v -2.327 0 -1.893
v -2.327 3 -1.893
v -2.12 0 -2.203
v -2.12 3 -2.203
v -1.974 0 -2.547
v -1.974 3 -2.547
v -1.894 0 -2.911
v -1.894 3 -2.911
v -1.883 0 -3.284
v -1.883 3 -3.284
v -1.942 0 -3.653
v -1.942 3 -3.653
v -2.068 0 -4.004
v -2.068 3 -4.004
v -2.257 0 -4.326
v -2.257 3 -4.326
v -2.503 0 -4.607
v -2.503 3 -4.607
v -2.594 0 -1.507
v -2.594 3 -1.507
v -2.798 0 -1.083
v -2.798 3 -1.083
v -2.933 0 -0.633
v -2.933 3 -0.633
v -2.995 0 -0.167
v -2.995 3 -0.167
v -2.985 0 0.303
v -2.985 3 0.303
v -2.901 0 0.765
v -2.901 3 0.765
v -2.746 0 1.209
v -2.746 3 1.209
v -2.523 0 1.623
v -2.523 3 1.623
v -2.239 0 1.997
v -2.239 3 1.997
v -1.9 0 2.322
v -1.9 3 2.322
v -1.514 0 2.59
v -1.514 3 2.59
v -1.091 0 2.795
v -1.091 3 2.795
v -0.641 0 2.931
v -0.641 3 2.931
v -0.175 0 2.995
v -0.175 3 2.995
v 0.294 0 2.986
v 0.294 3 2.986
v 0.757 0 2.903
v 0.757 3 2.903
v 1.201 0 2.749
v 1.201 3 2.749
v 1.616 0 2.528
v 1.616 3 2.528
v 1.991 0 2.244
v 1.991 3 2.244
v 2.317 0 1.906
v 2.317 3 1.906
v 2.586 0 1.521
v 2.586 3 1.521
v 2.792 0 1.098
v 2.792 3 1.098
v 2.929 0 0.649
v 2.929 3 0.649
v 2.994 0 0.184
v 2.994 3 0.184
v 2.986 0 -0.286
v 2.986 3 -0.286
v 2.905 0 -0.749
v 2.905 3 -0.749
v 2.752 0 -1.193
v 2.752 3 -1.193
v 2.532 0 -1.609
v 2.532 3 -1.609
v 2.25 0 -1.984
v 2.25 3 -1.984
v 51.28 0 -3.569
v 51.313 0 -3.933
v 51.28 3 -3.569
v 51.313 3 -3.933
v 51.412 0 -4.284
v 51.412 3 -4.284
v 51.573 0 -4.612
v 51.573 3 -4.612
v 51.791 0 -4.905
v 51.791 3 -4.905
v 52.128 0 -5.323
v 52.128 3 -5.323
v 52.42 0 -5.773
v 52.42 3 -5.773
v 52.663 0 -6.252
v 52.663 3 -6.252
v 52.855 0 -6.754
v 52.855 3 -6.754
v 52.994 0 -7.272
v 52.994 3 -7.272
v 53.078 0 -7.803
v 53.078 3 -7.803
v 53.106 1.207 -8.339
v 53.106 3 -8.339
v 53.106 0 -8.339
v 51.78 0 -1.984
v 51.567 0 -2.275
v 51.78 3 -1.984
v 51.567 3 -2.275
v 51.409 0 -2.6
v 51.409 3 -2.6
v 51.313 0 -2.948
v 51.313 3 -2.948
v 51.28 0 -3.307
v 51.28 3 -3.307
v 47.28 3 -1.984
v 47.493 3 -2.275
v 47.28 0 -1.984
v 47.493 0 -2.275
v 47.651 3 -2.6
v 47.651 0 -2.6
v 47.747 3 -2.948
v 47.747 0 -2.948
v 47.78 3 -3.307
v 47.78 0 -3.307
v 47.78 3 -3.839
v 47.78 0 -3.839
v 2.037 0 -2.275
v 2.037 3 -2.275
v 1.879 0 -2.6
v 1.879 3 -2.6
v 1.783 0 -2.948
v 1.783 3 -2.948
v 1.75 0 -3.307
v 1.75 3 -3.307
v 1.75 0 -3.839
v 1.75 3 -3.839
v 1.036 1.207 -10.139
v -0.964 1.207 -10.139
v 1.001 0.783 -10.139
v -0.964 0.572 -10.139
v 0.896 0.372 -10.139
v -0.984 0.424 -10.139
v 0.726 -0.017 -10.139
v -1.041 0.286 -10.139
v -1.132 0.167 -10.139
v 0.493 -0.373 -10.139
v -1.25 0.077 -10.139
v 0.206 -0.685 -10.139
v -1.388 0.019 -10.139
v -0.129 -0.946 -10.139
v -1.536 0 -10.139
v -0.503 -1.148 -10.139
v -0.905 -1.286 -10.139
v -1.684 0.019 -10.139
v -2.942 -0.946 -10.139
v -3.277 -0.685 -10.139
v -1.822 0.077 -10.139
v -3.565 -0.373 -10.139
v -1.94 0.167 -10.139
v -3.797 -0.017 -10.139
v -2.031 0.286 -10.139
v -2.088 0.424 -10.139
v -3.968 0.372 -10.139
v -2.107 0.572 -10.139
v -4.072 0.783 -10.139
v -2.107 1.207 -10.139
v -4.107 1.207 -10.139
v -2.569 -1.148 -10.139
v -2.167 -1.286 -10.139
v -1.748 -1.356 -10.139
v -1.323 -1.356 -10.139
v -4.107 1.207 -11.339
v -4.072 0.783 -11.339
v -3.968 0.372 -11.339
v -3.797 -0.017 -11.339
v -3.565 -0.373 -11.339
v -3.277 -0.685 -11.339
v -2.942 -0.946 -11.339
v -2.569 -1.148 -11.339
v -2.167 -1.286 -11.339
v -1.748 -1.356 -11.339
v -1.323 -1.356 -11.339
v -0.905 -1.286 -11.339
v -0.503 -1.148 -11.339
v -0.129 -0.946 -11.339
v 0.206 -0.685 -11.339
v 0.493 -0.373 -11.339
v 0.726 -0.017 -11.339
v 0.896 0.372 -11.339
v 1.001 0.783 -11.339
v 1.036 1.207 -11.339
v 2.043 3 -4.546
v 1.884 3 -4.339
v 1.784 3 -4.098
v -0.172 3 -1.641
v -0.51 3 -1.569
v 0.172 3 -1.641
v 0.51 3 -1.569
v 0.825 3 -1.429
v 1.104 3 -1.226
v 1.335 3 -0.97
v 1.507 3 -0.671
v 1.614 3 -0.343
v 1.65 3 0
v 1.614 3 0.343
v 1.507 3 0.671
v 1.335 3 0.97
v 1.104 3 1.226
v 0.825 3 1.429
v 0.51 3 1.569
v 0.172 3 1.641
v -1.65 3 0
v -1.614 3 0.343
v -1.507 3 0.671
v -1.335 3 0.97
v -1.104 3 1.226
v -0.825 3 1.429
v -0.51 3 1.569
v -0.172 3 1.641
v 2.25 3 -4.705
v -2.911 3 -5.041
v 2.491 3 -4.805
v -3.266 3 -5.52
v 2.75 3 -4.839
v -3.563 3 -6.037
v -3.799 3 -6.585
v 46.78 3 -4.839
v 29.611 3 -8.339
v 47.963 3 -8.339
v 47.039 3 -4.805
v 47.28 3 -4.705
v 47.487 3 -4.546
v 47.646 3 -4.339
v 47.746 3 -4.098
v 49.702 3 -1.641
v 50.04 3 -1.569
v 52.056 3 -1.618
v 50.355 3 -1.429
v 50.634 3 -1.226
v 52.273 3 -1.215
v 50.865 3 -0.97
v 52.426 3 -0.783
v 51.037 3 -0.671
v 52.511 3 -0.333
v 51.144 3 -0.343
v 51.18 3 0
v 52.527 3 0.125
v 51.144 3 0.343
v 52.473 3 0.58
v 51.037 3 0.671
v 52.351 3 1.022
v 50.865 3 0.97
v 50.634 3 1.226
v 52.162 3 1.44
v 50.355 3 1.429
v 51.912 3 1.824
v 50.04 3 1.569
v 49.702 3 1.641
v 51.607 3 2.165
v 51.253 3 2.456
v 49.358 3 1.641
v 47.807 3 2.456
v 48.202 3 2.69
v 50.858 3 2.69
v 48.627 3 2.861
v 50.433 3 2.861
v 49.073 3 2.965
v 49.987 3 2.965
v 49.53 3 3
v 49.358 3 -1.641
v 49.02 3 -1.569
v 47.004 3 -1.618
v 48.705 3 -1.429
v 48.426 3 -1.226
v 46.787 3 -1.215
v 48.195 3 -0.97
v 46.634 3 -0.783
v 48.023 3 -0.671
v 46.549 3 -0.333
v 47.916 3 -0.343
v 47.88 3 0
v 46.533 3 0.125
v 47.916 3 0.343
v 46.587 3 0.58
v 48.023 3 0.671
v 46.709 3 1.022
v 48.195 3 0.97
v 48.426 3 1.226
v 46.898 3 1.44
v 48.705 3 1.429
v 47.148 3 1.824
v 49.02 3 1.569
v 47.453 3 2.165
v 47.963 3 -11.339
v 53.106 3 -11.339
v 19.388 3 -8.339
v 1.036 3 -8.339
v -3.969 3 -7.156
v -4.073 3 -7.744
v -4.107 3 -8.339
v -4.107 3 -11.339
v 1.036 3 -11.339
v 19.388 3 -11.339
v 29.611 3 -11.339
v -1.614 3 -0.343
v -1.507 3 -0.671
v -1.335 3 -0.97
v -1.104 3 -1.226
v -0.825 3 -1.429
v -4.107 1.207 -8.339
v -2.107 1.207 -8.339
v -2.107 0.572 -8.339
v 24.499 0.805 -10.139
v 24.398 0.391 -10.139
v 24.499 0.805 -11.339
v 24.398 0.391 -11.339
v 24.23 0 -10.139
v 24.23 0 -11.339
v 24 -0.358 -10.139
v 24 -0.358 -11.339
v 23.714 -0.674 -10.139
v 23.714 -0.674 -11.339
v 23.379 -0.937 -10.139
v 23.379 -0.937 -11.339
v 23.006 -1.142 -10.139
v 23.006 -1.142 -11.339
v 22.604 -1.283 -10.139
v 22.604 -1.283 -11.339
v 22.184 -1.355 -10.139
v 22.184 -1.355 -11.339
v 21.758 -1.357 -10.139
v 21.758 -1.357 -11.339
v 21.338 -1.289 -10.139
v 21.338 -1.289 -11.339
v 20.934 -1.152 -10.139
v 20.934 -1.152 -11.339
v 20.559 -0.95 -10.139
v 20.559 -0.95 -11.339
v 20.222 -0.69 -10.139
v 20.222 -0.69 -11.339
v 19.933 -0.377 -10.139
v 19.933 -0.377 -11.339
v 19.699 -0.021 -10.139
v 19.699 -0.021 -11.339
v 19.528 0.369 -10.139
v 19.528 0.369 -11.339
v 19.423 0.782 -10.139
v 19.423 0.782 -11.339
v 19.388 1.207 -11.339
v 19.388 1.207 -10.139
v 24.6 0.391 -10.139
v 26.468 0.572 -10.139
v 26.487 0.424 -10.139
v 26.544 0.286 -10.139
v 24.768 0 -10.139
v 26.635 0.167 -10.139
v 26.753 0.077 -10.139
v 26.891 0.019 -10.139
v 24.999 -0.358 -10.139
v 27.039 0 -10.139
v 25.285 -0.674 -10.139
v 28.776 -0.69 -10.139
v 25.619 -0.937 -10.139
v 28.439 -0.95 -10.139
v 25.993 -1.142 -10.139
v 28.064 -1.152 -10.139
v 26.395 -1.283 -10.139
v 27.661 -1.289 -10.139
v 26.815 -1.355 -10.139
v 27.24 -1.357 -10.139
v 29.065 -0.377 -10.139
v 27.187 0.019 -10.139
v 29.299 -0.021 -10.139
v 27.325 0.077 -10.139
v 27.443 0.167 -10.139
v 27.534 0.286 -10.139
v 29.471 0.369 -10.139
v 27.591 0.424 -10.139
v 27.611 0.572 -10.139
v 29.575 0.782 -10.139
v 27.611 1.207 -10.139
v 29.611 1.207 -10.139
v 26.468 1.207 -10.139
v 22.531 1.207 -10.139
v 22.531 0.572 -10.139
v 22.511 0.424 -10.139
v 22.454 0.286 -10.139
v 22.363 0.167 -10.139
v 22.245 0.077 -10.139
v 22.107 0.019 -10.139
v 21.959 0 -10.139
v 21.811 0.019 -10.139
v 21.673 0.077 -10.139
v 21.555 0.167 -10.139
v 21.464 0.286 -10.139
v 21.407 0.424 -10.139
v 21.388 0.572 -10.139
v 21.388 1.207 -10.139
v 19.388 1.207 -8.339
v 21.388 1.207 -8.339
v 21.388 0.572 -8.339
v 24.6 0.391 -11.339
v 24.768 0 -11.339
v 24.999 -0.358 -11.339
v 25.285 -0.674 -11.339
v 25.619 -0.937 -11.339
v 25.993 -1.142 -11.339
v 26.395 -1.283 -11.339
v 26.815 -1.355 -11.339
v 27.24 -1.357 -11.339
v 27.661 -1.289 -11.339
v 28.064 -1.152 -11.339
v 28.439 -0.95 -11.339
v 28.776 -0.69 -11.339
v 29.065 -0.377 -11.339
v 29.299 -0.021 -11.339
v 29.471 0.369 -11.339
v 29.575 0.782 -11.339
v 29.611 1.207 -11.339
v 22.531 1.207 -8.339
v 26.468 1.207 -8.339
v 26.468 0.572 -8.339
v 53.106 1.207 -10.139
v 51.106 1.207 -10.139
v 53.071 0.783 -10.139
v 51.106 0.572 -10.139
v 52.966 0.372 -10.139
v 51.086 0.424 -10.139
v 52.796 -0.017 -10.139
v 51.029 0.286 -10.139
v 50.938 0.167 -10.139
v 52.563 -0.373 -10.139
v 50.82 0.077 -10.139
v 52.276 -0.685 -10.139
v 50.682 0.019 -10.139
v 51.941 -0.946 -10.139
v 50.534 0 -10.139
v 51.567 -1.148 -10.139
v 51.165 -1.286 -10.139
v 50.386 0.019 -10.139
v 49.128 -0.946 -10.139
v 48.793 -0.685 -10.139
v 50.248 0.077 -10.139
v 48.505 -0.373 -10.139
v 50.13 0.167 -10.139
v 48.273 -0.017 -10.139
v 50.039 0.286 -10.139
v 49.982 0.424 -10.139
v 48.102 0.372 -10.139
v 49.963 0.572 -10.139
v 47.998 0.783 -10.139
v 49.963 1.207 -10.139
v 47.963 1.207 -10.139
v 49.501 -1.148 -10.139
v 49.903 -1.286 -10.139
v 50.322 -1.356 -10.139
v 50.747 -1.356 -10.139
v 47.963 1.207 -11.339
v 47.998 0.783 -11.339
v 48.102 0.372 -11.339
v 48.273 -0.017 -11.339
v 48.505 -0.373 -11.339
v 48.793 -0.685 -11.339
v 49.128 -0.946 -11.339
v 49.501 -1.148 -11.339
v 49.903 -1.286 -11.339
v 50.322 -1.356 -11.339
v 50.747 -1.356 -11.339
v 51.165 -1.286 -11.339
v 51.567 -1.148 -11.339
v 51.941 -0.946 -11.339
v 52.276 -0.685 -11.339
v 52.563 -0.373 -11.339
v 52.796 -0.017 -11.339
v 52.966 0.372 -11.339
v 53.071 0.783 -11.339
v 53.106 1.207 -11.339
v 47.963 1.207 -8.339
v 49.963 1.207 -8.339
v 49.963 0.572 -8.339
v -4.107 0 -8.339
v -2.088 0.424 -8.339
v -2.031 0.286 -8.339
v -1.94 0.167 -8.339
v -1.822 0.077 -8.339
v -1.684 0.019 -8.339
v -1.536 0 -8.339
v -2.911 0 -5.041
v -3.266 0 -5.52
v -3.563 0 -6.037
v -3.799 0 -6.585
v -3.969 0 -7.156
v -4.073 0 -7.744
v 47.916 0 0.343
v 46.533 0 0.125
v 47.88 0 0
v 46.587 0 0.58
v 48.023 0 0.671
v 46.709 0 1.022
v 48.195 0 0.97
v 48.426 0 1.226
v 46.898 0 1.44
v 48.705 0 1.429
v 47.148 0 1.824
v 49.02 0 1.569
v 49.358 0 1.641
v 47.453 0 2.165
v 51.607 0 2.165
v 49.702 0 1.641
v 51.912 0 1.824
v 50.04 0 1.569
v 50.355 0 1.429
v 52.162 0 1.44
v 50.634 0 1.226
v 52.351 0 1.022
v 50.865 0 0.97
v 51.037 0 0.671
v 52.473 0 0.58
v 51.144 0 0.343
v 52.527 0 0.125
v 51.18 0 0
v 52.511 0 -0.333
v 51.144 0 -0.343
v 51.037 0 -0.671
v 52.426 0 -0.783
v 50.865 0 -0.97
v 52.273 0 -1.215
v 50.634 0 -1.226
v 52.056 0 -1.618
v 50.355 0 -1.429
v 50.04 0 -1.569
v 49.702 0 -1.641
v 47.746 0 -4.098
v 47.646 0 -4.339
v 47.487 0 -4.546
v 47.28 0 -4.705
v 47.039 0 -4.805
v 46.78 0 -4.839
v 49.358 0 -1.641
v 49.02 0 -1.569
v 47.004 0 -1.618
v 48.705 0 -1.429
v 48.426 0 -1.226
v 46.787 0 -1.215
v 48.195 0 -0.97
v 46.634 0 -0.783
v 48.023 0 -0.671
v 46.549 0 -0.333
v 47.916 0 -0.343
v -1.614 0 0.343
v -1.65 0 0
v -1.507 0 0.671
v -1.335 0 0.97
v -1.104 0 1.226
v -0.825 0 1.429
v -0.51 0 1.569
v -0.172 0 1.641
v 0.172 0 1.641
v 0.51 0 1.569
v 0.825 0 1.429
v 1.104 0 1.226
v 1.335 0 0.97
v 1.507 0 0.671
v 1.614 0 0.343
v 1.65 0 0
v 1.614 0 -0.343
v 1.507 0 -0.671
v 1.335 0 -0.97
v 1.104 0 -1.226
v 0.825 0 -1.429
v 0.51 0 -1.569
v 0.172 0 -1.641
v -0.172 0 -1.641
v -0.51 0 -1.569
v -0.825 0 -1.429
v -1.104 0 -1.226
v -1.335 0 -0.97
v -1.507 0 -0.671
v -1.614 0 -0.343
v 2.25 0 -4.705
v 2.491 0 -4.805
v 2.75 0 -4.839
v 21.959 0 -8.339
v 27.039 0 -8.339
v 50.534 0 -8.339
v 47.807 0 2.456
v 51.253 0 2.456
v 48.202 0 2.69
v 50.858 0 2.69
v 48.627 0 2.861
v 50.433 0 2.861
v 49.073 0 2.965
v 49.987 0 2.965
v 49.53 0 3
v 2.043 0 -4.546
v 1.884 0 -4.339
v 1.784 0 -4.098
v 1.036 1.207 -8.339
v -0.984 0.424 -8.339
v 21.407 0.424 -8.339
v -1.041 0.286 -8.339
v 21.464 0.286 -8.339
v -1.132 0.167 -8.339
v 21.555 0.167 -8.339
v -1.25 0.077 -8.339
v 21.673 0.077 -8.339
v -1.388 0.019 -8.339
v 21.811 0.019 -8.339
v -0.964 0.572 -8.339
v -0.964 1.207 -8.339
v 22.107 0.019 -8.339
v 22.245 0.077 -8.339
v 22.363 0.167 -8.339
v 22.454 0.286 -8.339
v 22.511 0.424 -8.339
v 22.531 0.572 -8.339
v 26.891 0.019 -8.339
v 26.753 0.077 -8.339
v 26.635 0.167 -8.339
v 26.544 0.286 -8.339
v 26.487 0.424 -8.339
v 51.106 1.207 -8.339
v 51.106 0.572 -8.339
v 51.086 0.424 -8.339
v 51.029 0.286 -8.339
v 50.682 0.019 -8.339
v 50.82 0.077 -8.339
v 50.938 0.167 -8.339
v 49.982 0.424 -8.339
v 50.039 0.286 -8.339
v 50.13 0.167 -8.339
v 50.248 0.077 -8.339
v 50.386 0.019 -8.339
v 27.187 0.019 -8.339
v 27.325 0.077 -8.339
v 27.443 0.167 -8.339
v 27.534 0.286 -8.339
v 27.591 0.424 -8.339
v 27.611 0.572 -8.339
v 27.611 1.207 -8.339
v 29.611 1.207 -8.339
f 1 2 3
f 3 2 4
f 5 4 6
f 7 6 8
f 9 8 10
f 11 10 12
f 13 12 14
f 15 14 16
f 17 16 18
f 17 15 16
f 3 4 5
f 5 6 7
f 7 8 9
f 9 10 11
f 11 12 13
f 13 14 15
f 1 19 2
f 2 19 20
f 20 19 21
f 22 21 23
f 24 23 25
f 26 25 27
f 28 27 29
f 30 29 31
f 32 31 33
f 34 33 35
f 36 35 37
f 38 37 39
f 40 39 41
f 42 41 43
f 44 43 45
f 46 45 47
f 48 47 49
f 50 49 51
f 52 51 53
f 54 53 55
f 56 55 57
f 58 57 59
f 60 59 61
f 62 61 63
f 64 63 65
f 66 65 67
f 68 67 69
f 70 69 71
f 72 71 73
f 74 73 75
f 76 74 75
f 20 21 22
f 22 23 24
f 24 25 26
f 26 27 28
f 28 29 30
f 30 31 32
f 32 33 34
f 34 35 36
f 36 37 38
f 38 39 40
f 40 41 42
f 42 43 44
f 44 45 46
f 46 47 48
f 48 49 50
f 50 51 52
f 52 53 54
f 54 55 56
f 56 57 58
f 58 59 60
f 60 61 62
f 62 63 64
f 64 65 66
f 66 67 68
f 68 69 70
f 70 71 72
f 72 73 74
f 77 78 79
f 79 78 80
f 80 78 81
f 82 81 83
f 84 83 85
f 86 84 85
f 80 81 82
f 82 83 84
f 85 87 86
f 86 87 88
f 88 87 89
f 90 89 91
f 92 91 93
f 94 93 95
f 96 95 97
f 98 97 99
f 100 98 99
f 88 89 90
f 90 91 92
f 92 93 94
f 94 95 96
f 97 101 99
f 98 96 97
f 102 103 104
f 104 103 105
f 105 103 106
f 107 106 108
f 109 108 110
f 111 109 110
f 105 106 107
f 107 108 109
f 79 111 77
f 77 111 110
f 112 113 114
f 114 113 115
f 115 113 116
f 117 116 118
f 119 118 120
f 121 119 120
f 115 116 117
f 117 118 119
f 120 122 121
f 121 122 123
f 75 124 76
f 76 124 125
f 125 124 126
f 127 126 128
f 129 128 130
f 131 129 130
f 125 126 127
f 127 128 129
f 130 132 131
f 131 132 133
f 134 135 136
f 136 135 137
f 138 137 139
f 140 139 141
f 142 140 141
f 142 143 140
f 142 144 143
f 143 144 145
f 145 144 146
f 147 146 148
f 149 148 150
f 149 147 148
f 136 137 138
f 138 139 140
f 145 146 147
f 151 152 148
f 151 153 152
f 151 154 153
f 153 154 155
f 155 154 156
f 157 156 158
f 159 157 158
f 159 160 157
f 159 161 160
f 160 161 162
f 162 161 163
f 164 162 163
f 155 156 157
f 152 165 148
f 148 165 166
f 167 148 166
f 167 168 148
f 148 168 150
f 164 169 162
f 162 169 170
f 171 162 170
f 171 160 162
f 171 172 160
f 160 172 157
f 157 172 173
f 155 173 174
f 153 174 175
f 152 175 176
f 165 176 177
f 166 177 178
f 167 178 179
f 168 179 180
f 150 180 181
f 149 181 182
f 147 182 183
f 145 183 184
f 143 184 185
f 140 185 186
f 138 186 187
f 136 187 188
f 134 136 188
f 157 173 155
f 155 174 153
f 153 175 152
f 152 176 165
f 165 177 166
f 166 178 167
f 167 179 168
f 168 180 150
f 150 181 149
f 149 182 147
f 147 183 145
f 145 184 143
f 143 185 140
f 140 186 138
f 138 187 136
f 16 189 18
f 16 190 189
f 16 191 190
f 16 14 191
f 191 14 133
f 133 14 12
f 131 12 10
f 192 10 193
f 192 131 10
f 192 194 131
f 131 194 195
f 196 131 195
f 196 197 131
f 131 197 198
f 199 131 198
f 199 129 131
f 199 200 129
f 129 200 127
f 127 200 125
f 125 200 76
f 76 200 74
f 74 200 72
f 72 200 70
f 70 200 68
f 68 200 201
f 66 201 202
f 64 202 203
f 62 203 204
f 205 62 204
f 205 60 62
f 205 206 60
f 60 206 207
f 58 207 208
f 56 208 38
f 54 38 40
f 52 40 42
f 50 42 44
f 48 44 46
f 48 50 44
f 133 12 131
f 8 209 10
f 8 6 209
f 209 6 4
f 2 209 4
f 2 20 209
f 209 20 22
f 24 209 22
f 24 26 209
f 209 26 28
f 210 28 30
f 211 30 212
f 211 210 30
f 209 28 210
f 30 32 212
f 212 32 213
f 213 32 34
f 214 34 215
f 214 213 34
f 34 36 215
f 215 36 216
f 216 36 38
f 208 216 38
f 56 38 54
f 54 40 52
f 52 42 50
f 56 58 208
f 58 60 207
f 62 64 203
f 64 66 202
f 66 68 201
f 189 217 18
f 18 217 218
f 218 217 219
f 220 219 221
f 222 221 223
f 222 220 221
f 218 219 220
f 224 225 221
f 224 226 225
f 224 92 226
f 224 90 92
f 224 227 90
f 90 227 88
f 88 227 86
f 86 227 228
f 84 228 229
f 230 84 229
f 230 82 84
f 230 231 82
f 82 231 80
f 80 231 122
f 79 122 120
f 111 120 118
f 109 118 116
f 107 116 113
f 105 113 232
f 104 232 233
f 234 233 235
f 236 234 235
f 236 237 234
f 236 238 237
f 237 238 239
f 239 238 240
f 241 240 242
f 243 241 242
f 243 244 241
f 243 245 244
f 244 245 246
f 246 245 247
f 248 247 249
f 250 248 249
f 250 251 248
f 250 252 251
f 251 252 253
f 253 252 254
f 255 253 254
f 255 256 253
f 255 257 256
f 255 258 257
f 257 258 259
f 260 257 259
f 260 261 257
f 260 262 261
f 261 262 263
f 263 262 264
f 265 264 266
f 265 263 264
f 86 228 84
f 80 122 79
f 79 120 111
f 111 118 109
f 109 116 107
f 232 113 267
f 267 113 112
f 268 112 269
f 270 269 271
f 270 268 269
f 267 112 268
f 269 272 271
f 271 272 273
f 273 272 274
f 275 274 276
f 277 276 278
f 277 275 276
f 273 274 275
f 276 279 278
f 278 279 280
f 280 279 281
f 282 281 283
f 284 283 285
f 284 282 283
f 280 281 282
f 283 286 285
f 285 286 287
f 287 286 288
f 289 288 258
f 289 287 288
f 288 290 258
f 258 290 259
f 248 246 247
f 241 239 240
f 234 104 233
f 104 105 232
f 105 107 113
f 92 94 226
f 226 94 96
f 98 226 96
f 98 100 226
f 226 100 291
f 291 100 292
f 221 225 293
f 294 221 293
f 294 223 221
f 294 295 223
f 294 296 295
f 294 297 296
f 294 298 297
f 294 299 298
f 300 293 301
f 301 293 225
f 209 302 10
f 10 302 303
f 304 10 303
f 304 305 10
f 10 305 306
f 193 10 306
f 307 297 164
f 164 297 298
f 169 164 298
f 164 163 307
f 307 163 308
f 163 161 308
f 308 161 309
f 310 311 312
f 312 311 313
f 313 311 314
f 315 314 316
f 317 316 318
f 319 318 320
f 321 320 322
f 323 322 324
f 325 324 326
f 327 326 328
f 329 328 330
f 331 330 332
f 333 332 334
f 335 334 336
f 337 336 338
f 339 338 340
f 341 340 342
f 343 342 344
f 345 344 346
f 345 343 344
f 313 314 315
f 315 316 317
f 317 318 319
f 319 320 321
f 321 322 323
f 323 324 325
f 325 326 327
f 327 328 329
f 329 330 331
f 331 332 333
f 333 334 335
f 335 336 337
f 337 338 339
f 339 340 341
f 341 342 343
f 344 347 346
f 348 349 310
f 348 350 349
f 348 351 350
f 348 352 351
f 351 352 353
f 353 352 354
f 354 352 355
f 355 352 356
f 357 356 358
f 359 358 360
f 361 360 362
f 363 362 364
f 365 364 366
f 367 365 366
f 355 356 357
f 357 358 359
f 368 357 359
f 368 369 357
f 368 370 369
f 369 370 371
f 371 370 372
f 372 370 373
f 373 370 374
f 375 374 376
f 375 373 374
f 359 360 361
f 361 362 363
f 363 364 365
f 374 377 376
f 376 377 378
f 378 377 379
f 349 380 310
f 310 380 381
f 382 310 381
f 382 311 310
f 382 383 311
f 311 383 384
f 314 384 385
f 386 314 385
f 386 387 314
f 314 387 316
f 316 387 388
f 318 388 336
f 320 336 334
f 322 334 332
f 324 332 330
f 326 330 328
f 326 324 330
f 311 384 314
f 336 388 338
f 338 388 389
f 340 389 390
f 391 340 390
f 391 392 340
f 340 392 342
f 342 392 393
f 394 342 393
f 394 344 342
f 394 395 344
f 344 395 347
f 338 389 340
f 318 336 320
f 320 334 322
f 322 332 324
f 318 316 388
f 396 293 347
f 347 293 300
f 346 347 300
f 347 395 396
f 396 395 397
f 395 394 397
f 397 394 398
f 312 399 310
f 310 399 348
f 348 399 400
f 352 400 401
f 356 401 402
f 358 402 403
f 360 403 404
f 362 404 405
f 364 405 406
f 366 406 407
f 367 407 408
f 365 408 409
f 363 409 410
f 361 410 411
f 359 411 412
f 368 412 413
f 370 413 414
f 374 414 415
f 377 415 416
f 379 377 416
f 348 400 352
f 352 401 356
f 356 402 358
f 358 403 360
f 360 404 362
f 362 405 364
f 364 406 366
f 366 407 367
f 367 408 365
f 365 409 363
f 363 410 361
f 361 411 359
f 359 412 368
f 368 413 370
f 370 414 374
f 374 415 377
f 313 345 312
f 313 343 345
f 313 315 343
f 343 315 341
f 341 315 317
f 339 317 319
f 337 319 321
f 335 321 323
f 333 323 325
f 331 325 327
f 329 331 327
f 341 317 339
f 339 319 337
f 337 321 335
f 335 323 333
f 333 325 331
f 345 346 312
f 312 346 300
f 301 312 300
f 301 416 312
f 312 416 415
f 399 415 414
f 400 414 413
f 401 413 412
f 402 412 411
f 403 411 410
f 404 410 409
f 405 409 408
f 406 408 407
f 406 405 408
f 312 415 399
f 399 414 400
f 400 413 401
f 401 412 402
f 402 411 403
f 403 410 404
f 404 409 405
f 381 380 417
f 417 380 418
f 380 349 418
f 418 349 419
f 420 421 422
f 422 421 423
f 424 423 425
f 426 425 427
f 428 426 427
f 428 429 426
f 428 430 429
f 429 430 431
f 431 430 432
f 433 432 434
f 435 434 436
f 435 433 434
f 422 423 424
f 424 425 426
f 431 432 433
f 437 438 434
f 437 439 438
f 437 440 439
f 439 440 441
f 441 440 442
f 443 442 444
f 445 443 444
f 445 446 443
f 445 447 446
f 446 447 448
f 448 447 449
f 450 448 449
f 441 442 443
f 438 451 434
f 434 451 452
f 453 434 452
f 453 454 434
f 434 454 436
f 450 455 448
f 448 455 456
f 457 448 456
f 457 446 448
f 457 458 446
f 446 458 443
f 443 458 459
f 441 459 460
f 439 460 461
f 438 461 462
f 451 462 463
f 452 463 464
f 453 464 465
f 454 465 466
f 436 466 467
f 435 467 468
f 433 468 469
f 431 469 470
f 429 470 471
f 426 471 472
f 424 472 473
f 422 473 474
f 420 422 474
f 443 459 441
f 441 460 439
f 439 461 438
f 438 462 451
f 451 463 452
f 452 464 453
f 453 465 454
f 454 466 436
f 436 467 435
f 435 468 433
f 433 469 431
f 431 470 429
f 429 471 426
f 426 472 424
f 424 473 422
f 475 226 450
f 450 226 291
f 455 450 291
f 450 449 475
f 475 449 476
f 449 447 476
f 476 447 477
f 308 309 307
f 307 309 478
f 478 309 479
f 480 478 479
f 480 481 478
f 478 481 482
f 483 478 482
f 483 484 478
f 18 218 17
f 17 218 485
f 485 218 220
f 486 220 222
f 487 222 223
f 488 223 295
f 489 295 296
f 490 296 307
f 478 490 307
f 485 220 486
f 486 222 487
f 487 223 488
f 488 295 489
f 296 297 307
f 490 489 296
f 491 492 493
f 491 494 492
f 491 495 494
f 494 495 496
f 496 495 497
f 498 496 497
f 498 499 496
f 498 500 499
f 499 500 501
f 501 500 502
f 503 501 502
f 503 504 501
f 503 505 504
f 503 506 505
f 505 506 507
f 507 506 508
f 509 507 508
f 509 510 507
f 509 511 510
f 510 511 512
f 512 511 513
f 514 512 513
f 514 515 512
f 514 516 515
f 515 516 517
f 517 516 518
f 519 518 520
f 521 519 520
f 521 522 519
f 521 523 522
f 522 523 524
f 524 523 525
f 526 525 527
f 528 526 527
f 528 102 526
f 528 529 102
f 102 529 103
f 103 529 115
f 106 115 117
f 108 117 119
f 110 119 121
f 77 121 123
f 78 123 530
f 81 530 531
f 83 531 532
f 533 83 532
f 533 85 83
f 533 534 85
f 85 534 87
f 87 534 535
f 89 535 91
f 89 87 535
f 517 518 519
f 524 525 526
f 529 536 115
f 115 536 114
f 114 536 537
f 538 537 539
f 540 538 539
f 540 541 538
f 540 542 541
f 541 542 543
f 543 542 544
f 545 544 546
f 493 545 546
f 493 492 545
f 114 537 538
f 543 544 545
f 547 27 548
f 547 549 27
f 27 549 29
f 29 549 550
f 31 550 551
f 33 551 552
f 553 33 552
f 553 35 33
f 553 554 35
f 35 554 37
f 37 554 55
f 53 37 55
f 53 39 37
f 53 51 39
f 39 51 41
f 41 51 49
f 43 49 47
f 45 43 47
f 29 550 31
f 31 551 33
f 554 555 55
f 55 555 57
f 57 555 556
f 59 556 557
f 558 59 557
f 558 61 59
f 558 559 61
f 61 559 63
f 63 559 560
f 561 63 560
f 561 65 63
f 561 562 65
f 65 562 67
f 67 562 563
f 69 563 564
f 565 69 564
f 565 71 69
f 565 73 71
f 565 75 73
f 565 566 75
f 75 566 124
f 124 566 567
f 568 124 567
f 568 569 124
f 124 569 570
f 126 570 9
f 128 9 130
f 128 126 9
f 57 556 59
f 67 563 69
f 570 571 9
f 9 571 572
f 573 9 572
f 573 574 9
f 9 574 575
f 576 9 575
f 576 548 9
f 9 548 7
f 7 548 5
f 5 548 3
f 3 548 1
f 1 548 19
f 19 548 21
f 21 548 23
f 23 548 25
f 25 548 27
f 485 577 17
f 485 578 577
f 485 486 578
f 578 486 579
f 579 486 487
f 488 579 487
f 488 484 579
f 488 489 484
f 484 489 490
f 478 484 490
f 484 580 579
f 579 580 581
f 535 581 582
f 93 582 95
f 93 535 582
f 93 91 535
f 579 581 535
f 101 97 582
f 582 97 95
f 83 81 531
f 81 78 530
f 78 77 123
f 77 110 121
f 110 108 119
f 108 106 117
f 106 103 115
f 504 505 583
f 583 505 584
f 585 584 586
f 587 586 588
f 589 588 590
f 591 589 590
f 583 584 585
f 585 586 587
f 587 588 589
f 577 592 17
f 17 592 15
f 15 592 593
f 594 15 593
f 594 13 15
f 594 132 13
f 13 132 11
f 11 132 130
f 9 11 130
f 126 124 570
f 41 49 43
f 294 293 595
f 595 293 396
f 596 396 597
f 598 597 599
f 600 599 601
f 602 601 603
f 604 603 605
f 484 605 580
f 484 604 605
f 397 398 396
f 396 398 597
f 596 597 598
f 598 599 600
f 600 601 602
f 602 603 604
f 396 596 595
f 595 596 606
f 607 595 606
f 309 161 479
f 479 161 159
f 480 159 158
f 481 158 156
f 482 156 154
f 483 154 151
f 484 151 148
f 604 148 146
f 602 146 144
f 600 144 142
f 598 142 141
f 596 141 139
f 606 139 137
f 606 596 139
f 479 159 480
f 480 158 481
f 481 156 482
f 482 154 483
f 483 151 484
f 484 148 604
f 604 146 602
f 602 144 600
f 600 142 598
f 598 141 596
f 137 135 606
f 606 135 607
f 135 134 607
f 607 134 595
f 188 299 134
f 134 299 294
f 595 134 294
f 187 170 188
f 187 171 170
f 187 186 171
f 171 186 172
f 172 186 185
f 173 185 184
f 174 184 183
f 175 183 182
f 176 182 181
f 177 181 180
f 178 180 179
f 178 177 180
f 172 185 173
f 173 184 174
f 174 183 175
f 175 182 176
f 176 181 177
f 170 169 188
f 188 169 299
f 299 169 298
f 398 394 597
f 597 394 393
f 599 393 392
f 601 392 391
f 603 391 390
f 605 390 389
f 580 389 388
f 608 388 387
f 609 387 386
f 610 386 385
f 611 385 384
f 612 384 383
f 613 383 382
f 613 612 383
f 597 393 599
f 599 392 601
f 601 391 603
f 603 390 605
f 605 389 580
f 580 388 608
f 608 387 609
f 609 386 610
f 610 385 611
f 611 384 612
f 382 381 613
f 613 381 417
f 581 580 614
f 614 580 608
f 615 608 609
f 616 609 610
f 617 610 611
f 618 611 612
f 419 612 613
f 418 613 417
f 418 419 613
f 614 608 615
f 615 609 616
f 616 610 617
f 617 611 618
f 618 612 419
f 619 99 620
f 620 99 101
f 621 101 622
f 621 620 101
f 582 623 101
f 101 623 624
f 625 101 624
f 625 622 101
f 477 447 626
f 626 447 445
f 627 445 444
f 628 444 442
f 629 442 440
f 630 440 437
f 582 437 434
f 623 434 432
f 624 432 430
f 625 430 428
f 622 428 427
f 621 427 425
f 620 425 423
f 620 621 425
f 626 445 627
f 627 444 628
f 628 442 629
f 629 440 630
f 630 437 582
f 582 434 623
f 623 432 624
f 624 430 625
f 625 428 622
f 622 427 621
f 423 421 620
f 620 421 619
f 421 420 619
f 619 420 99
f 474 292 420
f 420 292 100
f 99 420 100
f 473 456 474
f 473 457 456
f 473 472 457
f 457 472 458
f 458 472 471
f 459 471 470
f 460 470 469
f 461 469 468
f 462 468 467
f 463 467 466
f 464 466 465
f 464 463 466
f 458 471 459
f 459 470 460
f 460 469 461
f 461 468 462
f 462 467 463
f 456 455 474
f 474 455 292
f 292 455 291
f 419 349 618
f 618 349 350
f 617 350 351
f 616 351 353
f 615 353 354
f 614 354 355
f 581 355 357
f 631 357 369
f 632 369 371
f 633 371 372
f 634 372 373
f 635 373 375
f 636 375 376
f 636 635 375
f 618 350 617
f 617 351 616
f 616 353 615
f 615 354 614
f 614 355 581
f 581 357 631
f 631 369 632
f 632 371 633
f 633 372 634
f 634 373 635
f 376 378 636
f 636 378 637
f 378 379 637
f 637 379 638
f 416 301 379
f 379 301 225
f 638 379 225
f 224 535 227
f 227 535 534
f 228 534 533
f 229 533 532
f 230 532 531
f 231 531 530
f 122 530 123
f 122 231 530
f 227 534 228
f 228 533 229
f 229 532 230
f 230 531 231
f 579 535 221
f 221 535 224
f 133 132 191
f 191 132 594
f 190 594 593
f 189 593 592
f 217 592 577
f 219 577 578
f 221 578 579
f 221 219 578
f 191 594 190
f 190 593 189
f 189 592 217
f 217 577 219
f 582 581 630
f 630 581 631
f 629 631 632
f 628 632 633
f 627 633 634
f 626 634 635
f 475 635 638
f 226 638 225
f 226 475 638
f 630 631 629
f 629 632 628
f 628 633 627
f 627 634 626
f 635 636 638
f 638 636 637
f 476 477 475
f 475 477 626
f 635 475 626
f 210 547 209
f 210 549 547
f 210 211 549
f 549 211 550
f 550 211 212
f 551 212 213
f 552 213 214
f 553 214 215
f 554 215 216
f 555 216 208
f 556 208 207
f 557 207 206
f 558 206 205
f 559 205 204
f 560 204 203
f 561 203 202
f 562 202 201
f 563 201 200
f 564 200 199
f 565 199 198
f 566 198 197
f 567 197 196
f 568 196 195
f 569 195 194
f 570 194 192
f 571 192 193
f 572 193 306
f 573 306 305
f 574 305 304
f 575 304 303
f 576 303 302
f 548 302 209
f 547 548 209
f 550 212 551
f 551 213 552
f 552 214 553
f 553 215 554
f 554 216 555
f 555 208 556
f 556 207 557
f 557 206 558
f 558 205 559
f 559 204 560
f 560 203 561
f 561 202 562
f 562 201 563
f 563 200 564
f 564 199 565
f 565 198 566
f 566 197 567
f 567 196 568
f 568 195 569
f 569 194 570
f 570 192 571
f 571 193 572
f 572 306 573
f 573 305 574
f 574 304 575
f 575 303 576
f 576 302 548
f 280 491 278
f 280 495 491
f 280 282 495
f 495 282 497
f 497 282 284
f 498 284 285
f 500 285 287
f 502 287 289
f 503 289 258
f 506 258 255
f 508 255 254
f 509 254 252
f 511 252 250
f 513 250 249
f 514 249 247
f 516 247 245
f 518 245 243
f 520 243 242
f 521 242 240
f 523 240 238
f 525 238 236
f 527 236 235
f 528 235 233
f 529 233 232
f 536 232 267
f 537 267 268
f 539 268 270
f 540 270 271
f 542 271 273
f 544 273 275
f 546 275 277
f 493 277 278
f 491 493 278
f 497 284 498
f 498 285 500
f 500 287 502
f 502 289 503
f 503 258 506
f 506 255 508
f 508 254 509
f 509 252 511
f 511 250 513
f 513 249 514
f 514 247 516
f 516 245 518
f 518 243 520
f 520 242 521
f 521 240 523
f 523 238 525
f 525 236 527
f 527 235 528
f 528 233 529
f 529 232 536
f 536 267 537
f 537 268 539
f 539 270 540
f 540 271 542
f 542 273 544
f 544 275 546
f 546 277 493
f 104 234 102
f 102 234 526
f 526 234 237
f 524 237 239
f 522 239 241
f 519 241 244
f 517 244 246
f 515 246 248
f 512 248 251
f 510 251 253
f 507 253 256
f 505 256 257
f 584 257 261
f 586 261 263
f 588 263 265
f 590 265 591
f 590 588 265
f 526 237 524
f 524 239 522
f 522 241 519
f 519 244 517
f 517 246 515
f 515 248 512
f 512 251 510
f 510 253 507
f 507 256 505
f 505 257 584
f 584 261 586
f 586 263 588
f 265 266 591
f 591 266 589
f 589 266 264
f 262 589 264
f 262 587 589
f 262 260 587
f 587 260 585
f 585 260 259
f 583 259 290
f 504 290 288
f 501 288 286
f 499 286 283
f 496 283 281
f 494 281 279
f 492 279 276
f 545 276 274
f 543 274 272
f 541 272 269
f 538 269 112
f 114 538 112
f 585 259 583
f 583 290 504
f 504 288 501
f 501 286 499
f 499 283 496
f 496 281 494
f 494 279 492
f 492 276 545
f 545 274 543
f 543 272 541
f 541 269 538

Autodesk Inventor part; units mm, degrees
ref_plane "YZ Plane" through (0, 0, 0) normal (1, 0, 0) x (0, 1, 0)
ref_plane "XZ Plane" through (0, 0, 0) normal (0, 1, 0) x (-1, 0, 0)
ref_plane "XY Plane" through (0, 0, 0) normal (0, 0, 1) x (1, 0, 0)
sketch "Sketch1" plane through (0, 0, 0) normal (0, 1, 0) x (-1, 0, 0)
  circle A0 centre (0, 0) radius 1.65
  line L0 (0, 0) -> (22.8671, 0) construction
  circle A1 centre (-49.53, 0) radius 1.65
  circle A2 centre (-49.53, 0) radius 3
  line L1 (-24.765, 0) -> (-24.765, 33.4897) construction
  line L2 (0, 0) -> (0, -6.322) construction
  line L3 (-49.53, 0) -> (-44.53, 0) construction
  circle A3 centre (0, 0) radius 3
  dimension "d0" = 3.3
  dimension "d2" = 49.53
  dimension "d3" = 3.3
  dimension "d4" = 6
  dimension "d11" = 6
extrude "Extrusion1" add sketch "Sketch1" along normal blind 3
sketch "Sketch2" plane through (49.53, 0, 0) normal (0, -1, 0) x (1, 0, 0)
  line L0 (1.75, -2.2) -> (1.75, -6.339)
  line L1 (-0.25, -8.339) -> (-49.28, -8.339)
  line L2 (-51.28, -6.339) -> (-51.28, -2.2)
  line L3 (-47.78, -2.2) -> (-47.78, -3.839)
  line L4 (-46.78, -4.839) -> (-2.75, -4.839)
  line L5 (-1.75, -3.839) -> (-1.75, -2.2)
  line L6 (0, 0) -> (0, -7.7115) construction
  line L7 (1.75, -2.2) -> (-1.75, -2.2)
  line L8 (-49.53, 0) -> (-49.53, -7.2415) construction
  line L9 (-47.78, -2.2) -> (-51.28, -2.2)
  arc A0 (-47.78, -3.839) -> (-46.78, -4.839) centre (-46.78, -3.839) ccw
  arc A1 (-2.75, -4.839) -> (-1.75, -3.839) centre (-2.75, -3.839) ccw
  arc A2 (-51.28, -6.339) -> (-49.28, -8.339) centre (-49.28, -6.339) ccw
  arc A3 (-0.25, -8.339) -> (1.75, -6.339) centre (-0.25, -6.339) ccw
  point P0 (1.75, -8.339)
  point P1 (0, -2.2)
  point P2 (-49.53, -2.2)
  dimension "d14" = 6.139
  dimension "d15" = 2.2
  dimension "d16" = 3.5
  dimension "d17" = 3.5
  dimension "d18" = 2.2
  dimension "d19" = 1
  dimension "d20" = 2
extrude "Extrusion2" add sketch "Sketch2" against normal blind 3
sketch "Sketch3" plane through (49.28, 0, -8.339) normal (0, 0, -1) x (-1, 0, 0)
  arc A0 (21.6693, 0.5715) -> (22.8123, 0.5715) centre (22.2408, 0.5715) ccw
  line L0 (49.03, 0) -> (0, 0) construction
  line L1 (0, 3) -> (49.03, 3) projected
  line L2 (-2, 0) -> (-2, 3) projected
  line L3 (22.8123, 0.5715) -> (22.8123, 1.2065)
  line L4 (22.8123, 1.2065) -> (24.8123, 1.2065)
  line L5 (24.8123, 1.2065) -> (24.8123, 3)
  line L6 (21.6693, 0.5715) -> (21.6693, 1.2065)
  line L7 (21.6693, 1.2065) -> (19.6693, 1.2065)
  line L8 (19.6693, 1.2065) -> (19.6693, 3)
  line L9 (22.2408, 0.5715) -> (23.4157, 0.5715) construction
  line L10 (24.8123, 3) -> (19.6693, 3)
  point P0 (49.28, 0)
  point P1 (46.53, 3)
  point P2 (2.5, 3)
  dimension "d23" = 1.143
  dimension "d26" = 24.2408
  dimension "d27" = 2
  dimension "d28" = 2
  dimension "d29" = 0.635
  dimension "d30" = 0.635
  dimension "d31" = 2.4285
extrude "Extrusion3" add sketch "Sketch3" along normal blind 3
pattern_linear "Rectangular Pattern1" count 2 spacing 23.495 along (1, 0, 0) of "Extrusion3"
sketch "Sketch4" plane through (47.9627, 3, -8.339) normal (0, 1, 0) x (1, 0, 0)
  arc A0 (0, -5.143) -> (5.143, 0) centre (0, 0) ccw
  line L0 (5.143, 0) -> (0, 0)
  line L1 (0, 0) -> (0, -5.143)
  point P0 (-47.9627, -8.339)
extrude "Extrusion4" add sketch "Sketch4" against normal blind 3
pattern_linear "Rectangular Pattern2" count 2 spacing 5.08 along (-1, 0, 0) of "Extrusion3"
pattern_linear "Rectangular Pattern3" count 2 spacing 23.495 along (-1, 0, 0) of "Rectangular Pattern2"
sketch "Sketch6" plane through (0, 0, 0) normal (0, -1, 0) x (1, 0, 0)
  line L0 (1.0357, -8.339) -> (-4.1073, -8.339)
  line L1 (-4.1073, -8.339) -> (-1.6483, -8.339)
  line L2 (-0.2103, -8.339) -> (0.25, -8.339)
  line L3 (0.25, -8.339) -> (1.0357, -8.339)
  line L4 (1.0357, -8.339) -> (1.0357, -3.196)
  arc A0 (1.0357, -3.196) -> (-4.1073, -8.339) centre (1.0357, -8.339) ccw
  line L5 (-0.9643, -8.339) -> (0.25, -8.339) projected
  line L6 (-0.9643, -8.339) -> (-0.9643, -11.339) projected
  line L7 (1.0357, -11.339) -> (-0.9643, -11.339) projected
  line L8 (1.0357, -8.339) -> (1.0357, -11.339) projected
  line L9 (0.25, -8.339) -> (1.0357, -8.339) projected
  line L10 (-4.1073, -8.339) -> (-2.1073, -8.339) projected
  line L11 (-4.1073, -8.339) -> (-4.1073, -11.339) projected
  line L12 (-2.1073, -11.339) -> (-4.1073, -11.339) projected
  line L13 (-2.1073, -8.339) -> (-2.1073, -11.339) projected
  line L14 (0.25, -8.339) -> (21.9592, -8.339) projected
  point P0 (5.143, 0)
extrude "Extrusion5" add sketch "Sketch6" against normal blind 3 contours L0 A0 L4
sketch "Sketch7" plane through (53.1057, 3, -11.339) normal (0, 0, -1) x (-1, 0, 0)
  line L0 (3.143, -2.4285) -> (3.143, -1.7935) construction
  line L1 (3.143, -1.7935) -> (5.143, -1.7935) construction
  line L2 (5.143, -1.7935) -> (5.143, 0) construction
  line L3 (5.143, 0) -> (0, 0) construction
  line L4 (0, 0) -> (0, -1.7935) construction
  line L5 (0, -1.7935) -> (2, -1.7935) construction
  line L6 (2, -1.7935) -> (2, -2.4285) construction
  arc A0 (2, -2.4285) -> (3.143, -2.4285) centre (2.5715, -2.4285) ccw construction
  line L7 (0, -1.7935) -> (0, 0)
  line L8 (0, 0) -> (5.143, 0)
  line L9 (5.143, 0) -> (5.143, -1.7935)
  arc A1 (0, -1.7935) -> (5.143, -1.7935) centre (2.5715, -1.7935) ccw
  line L10 (5.143, -1.7935) -> (0, -1.7935) construction
  line L11 (5.143, -1.7935) -> (5.143, 0) construction
  point P0 (53.1057, -3)
extrude "Extrusion6" add sketch "Sketch7" against normal blind 1.2
pattern_linear "Rectangular Pattern4" count 2 spacing 23.495 along (-1, 0, 0) of "Extrusion6"
pattern_linear "Rectangular Pattern5" count 2 spacing 28.575 along (-1, 0, 0) of "Extrusion6"
pattern_linear "Rectangular Pattern6" count 2 spacing 52.07 along (-1, 0, 0) of "Extrusion6"
sketch "Sketch9" plane through (0, 0, 0) normal (0, -1, 0) x (1, 0, 0)
  circle A0 centre (0, 0) radius 1.65 projected
  circle A1 centre (49.53, 0) radius 1.65 projected
  circle A2 centre (49.53, 0) radius 3.5
  arc A3 (1.75, -2.4367) -> (-1.75, -2.4367) centre (0, 0) ccw projected
  circle A4 centre (0, 0) radius 3.5
  point P0 (2.1649, -2.7501)
extrude "Extrusion7" [suppressed]
fillet "Fillet2" radius 2 2 edges at (1.75, 1.5, -2.4367) (47.78, 1.5, -2.4367)
fillet "Fillet3" radius 2 4 edges at (-1.75, 1.5, -2.4367) (51.28, 1.5, -2.4367) (51.28, 1.5, -4.4088) (-1.75, 1.5, -4.0158)
properties part number "HDMIPluginModuleHolder03"
